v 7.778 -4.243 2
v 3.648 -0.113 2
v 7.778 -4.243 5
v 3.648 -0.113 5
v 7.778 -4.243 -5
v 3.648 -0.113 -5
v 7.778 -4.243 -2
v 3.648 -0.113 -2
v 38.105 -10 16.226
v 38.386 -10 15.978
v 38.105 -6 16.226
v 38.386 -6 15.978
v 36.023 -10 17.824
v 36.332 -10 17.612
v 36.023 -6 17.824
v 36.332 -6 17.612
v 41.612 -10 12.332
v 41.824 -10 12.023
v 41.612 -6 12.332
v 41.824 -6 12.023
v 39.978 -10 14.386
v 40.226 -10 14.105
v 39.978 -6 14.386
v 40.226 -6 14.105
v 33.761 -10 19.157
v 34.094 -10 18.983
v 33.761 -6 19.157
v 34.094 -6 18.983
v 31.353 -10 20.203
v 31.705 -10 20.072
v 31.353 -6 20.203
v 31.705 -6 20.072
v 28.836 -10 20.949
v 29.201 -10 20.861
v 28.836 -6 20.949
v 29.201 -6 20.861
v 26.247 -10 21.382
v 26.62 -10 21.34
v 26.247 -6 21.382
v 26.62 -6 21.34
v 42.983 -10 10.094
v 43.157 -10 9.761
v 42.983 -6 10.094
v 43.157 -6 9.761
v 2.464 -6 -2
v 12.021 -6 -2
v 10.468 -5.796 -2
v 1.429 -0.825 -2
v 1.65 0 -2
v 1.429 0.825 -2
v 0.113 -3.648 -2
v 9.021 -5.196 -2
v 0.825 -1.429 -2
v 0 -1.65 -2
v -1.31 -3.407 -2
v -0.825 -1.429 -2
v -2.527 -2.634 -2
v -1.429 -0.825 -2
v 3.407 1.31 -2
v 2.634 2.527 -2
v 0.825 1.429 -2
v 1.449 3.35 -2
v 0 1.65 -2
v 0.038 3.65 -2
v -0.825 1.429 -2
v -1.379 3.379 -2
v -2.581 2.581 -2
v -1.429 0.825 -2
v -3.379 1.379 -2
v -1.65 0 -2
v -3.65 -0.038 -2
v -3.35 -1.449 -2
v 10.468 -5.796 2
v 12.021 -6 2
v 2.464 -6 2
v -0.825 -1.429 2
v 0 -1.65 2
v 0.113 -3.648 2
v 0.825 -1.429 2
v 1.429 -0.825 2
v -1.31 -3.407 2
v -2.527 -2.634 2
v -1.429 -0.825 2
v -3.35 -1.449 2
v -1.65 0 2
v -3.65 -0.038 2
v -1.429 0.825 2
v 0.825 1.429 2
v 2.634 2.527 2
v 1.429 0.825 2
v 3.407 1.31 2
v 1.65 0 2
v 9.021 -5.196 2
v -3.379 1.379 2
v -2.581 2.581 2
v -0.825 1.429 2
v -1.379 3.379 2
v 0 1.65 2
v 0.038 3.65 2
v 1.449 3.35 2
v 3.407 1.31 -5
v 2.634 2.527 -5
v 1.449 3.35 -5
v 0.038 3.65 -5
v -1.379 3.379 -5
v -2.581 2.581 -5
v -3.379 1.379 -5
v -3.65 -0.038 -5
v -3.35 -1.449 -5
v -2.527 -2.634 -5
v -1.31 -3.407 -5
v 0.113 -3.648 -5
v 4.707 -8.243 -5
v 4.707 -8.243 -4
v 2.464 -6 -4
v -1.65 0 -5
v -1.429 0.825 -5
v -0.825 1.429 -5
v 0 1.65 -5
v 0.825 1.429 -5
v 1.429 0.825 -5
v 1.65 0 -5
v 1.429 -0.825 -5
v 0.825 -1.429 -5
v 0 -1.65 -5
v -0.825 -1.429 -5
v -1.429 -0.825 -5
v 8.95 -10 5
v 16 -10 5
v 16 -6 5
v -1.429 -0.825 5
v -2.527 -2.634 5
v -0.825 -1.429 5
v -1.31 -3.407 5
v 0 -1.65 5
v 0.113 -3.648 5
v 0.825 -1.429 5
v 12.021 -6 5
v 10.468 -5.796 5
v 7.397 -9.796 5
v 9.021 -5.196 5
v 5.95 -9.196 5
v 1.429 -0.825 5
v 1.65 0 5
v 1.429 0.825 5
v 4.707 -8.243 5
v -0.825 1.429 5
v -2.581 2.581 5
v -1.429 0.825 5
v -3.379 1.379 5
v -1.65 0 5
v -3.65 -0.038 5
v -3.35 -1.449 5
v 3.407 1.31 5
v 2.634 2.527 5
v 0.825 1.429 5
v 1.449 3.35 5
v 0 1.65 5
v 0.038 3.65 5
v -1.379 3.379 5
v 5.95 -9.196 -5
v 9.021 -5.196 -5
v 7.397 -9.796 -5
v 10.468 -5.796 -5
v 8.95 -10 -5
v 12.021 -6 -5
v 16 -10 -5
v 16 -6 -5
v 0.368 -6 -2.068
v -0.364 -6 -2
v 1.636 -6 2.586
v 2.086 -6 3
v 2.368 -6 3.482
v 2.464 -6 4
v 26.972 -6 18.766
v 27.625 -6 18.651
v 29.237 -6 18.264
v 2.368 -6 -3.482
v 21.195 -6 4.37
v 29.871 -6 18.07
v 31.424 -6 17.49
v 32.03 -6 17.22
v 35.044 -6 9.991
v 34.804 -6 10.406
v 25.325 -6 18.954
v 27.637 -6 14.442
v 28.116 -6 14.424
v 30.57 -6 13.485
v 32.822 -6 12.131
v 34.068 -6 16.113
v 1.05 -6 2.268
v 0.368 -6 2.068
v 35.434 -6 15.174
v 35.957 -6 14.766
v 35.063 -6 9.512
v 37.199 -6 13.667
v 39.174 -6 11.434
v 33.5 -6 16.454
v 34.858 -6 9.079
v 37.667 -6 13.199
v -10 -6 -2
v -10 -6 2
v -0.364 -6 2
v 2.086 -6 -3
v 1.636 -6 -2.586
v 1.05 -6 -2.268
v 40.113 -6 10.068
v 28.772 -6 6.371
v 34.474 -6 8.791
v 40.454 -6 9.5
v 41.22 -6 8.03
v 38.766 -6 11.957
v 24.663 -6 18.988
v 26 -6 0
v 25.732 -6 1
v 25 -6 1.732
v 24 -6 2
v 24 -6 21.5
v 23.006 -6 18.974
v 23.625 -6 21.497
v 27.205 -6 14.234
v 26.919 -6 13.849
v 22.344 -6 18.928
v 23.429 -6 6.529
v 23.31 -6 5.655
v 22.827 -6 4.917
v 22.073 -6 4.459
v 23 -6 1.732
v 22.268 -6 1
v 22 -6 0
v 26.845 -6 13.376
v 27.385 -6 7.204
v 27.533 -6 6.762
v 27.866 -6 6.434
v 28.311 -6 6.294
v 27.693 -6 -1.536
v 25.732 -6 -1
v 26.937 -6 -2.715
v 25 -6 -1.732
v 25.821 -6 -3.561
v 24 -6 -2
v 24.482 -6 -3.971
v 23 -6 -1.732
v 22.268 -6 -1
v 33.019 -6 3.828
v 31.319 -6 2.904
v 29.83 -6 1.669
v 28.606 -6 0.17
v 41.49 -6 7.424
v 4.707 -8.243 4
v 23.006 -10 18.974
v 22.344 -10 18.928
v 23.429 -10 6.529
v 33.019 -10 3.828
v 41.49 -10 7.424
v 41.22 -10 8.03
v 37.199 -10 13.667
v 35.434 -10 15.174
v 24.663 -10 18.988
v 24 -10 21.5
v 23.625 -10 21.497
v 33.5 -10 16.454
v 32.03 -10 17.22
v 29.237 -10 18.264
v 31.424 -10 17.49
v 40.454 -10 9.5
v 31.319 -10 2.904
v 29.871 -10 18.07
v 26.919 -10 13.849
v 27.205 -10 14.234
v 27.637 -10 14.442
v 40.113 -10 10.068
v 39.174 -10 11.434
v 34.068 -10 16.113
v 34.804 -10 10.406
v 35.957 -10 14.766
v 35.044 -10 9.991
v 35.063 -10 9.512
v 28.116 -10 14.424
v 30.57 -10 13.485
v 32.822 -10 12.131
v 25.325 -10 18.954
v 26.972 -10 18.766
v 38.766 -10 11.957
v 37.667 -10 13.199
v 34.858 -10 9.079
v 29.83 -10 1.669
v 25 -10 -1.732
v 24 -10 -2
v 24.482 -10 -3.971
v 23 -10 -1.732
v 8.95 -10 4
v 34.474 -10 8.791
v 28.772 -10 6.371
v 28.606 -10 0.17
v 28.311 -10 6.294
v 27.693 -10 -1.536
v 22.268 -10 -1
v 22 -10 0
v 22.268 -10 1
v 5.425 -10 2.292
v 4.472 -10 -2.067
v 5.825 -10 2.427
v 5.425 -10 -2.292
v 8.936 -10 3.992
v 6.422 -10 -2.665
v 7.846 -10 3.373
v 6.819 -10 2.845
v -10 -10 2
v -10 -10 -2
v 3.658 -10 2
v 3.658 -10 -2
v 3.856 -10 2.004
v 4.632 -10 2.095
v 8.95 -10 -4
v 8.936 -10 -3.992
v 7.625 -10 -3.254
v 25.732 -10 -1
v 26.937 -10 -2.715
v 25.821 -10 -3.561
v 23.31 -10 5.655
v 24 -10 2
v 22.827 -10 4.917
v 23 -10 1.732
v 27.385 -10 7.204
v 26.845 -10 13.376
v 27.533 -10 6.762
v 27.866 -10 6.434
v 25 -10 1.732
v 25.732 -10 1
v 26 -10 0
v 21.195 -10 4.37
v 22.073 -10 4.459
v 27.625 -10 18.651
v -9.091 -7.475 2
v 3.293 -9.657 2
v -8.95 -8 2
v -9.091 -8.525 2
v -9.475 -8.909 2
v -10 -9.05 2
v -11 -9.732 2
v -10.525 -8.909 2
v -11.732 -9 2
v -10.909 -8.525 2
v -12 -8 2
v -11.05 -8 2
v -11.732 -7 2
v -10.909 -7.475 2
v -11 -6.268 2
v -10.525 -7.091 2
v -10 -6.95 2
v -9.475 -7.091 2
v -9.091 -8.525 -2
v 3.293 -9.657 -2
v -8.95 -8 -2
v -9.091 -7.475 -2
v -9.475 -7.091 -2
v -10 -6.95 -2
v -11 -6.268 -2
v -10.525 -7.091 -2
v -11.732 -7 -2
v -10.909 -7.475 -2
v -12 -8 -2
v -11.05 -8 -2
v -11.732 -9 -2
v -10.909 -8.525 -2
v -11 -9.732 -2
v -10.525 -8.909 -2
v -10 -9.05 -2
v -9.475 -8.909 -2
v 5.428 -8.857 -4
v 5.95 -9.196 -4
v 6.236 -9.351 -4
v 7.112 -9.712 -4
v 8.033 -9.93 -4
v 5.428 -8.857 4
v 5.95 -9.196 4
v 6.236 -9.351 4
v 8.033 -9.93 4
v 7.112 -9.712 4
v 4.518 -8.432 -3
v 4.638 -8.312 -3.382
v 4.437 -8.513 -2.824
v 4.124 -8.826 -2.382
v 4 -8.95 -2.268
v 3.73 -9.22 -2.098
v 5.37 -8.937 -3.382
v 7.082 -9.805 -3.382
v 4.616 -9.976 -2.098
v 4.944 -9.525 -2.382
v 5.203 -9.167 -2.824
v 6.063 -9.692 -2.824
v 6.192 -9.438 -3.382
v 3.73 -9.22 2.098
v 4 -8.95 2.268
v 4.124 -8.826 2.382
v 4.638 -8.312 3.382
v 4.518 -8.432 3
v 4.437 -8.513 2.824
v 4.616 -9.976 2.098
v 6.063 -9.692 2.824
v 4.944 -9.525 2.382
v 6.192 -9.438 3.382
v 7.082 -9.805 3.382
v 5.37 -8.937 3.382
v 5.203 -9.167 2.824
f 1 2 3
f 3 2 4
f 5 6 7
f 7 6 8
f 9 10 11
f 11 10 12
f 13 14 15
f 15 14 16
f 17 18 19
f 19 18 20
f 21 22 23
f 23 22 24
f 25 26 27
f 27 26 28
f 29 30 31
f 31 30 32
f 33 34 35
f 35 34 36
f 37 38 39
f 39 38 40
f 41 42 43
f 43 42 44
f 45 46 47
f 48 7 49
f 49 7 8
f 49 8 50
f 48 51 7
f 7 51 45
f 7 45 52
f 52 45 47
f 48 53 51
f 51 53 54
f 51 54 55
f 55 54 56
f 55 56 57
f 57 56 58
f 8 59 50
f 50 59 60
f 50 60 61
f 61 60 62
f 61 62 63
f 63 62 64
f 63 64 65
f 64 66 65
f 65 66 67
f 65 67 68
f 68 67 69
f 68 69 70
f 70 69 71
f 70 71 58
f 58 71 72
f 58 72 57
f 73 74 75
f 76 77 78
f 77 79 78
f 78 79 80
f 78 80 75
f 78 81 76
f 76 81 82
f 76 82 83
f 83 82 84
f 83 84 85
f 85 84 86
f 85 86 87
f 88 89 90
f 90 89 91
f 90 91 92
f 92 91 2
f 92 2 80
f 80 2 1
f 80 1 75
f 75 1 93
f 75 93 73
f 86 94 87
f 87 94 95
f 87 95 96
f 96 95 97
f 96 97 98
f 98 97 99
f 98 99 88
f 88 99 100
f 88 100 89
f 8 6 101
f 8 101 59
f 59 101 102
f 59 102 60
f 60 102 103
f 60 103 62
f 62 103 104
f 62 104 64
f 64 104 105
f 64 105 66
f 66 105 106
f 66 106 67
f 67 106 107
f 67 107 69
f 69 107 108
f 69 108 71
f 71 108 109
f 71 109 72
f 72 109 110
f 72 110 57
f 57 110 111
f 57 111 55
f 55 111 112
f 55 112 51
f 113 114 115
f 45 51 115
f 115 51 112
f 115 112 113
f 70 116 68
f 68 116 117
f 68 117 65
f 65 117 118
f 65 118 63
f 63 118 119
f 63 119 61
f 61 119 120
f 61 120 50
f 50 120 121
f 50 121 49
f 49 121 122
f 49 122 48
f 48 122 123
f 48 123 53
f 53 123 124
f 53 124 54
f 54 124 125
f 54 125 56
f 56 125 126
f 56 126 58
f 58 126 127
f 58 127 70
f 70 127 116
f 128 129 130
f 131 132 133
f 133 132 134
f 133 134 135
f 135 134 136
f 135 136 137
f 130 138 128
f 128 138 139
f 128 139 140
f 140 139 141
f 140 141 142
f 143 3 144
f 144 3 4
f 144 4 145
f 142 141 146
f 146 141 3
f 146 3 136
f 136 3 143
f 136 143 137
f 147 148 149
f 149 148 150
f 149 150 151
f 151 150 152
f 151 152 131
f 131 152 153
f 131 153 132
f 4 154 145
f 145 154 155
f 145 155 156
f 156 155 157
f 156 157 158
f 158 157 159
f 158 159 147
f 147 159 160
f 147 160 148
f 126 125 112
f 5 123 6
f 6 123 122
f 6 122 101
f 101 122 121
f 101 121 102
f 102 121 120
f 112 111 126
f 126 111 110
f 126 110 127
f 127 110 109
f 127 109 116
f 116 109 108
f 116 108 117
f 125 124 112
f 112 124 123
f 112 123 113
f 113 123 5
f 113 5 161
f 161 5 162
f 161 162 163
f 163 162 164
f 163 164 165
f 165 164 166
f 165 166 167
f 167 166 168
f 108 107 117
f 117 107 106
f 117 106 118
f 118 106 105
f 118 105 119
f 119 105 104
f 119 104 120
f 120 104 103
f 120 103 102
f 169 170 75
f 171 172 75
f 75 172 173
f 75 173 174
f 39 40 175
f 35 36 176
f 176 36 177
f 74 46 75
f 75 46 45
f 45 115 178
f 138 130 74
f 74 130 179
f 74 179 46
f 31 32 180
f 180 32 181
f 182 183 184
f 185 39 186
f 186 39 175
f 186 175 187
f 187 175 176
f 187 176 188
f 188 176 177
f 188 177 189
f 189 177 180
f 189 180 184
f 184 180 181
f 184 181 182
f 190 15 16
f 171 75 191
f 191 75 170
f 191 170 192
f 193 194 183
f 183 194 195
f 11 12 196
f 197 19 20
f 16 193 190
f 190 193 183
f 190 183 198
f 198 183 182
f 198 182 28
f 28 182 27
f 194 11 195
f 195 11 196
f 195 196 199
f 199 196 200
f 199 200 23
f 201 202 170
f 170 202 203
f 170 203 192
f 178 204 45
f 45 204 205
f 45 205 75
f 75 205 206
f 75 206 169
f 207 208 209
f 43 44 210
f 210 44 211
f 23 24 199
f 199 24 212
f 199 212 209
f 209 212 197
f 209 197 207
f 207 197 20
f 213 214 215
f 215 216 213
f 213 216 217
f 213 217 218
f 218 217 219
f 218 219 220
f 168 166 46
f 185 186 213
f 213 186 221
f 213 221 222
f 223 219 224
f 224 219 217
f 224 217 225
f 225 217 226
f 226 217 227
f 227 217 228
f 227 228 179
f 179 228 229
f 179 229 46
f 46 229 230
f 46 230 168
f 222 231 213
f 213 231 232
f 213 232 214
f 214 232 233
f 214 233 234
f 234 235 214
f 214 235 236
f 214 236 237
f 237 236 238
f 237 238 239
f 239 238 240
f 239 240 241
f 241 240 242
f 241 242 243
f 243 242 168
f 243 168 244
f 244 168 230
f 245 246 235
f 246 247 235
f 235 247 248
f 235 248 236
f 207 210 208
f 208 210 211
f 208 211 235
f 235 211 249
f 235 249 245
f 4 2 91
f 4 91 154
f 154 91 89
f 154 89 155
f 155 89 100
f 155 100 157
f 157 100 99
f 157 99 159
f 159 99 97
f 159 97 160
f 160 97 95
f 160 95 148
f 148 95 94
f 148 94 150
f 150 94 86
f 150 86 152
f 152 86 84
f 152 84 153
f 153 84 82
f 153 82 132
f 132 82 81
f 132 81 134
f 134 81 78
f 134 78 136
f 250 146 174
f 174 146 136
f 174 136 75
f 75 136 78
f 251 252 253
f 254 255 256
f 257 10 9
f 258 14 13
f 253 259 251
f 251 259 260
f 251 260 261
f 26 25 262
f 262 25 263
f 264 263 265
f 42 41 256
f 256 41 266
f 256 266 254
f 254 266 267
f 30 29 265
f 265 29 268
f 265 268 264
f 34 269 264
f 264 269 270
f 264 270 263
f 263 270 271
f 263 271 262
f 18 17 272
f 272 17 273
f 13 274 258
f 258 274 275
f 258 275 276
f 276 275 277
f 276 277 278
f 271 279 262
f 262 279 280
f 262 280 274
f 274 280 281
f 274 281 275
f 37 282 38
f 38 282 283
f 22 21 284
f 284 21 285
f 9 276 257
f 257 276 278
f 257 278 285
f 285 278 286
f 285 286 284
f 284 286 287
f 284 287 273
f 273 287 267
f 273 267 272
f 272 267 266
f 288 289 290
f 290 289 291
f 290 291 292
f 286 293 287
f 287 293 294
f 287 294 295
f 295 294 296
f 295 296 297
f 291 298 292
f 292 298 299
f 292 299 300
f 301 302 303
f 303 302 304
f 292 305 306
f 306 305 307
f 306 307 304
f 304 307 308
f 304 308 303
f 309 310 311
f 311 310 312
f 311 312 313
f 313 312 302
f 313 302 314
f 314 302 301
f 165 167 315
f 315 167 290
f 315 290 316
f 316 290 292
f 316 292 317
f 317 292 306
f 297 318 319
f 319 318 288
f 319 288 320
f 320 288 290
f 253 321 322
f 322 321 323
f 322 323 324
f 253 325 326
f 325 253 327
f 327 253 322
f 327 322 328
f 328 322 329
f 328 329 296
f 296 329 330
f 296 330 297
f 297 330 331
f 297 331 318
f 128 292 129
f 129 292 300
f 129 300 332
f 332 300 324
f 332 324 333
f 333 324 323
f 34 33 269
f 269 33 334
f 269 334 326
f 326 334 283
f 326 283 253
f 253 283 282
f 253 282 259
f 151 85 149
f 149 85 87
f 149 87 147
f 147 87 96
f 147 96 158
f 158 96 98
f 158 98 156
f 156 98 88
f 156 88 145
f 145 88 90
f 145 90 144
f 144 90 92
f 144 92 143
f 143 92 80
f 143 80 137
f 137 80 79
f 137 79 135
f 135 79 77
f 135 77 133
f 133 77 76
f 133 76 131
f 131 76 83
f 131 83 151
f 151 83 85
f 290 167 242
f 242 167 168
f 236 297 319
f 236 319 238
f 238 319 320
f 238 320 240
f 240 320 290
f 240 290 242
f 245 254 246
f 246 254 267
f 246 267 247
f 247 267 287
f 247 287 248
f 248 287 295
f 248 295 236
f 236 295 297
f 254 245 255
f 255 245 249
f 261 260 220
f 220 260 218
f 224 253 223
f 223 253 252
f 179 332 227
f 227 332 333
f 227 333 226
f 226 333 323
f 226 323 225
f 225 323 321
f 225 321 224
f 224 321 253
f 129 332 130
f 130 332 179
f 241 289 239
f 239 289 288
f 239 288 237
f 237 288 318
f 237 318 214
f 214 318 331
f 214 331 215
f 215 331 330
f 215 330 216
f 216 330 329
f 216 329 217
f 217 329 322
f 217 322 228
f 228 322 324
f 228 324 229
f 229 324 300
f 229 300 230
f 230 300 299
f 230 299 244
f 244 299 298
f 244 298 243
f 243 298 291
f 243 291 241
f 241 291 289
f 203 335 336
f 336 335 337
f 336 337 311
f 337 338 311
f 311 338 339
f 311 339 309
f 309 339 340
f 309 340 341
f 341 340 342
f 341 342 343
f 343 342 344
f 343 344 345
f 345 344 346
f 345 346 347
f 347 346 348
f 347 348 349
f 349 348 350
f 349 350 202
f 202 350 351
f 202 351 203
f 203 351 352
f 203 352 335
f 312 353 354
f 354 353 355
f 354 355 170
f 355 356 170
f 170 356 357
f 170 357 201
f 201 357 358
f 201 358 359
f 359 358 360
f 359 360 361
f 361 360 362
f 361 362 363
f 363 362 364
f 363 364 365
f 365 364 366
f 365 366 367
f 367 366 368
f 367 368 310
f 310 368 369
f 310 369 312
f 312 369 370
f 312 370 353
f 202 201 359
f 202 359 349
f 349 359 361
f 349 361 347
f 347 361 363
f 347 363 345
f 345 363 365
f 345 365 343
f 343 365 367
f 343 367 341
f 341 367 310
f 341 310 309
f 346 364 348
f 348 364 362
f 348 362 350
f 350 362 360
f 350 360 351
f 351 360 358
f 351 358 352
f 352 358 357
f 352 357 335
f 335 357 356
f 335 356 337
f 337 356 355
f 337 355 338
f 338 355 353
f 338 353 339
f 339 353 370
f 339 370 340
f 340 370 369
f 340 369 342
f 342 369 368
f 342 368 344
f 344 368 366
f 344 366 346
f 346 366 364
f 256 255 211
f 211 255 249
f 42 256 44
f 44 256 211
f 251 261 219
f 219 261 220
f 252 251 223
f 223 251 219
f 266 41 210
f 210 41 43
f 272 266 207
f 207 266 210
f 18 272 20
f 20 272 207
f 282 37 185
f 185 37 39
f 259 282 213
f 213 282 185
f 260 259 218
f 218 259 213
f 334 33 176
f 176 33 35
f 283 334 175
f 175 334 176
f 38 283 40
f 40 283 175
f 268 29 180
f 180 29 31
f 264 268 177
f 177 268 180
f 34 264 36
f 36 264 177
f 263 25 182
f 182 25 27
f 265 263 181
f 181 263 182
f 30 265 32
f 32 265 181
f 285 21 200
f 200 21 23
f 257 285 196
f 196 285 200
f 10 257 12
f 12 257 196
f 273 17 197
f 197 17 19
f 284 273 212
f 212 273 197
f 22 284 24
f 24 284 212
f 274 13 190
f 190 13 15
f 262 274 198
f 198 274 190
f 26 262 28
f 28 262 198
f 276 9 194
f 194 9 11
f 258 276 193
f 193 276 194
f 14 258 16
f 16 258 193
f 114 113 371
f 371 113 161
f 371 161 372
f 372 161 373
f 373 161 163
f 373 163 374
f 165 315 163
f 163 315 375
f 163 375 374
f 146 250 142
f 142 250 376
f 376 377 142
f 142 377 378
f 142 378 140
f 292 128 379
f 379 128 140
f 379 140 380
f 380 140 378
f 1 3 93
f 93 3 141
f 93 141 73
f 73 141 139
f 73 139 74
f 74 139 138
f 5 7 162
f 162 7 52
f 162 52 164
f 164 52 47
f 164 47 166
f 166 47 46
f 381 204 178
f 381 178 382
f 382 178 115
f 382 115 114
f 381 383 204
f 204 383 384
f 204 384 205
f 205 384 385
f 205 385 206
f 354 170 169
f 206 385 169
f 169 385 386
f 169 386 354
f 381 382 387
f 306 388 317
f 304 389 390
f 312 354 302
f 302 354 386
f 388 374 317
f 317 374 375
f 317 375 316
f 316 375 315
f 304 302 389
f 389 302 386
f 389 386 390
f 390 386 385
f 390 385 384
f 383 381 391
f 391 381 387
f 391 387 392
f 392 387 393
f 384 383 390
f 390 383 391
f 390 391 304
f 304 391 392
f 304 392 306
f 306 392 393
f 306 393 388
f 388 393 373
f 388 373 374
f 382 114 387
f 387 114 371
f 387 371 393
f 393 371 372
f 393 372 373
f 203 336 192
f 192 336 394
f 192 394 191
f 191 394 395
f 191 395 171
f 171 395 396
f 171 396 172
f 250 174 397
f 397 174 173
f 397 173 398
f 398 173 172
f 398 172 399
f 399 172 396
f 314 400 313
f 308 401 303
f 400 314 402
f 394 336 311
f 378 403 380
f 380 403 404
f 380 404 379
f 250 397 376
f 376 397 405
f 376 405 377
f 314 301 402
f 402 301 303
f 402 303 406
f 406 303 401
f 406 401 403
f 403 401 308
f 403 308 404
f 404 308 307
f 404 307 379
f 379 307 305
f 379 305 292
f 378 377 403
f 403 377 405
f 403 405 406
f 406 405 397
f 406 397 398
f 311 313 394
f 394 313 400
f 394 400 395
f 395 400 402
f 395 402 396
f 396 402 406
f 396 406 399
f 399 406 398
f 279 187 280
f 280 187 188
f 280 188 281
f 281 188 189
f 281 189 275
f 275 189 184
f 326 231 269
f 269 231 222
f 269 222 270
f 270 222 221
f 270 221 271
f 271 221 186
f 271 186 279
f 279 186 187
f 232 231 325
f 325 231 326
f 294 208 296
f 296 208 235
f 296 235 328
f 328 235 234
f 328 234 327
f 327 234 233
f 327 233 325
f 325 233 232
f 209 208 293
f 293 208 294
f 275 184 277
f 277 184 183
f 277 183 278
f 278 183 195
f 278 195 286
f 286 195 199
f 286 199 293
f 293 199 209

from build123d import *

# Parameters (mm, degrees)
SKETCH1_R           = 1.6500000000000001
BOSS_EXTRUDE1_DEPTH = 5
CUT_EXTRUDE1_DEPTH  = 22.617643257302586
SKETCH4_R           = 2.000000000000003
BOSS_EXTRUDE2_DEPTH = 4
SKETCH5_R           = 1.0500000000000005
BOSS_EXTRUDE3_DEPTH = 2
CUT_EXTRUDE2_REACH  = 52.658
CIRPATTERN1_COUNT   = 11
CIRPATTERN1_ANGLE   = 70.00000000000016
CUT_EXTRUDE3_DEPTH  = 4
FILLET1_R           = 6
FILLET2_R           = 2
CUT_EXTRUDE4_REACH  = 51.172


with BuildPart() as part:
    # Sketch1 → Boss-Extrude1 (new, symmetric)
    with BuildSketch(Plane.XY):
        with BuildLine():
            Line((6.464466094067297, -10), (16, -10))
            Line((16, -10), (16, -5.999999999999998))
            Line((16, -5.999999999999998), (9.535533905932775, -5.999999999999998))
            Line((9.535533905932775, -5.999999999999998), (3.6482589098755183, -0.11272500394276944))
            ThreePointArc((3.6482589098755183, -0.11272500394276944), (-2.580939751330903, 2.5809397513308943), (0.11272500394278592, -3.6482589098755174))
            Line((0.11272500394278592, -3.6482589098755174), (6.464466094067297, -10))
        make_face()
        Circle(SKETCH1_R, mode=Mode.SUBTRACT)
    extrude(amount=BOSS_EXTRUDE1_DEPTH, both=True)

    # Sketch3 → Cut-Extrude1 (cut, through all)
    with BuildSketch(Plane.XZ.offset(10)):
        Polygon((6.464466094067297, 2.000000000000001), (-3.6500000000000012, 1.9999999999999996), (-3.650000000000001, -2.0000000000000004), (6.464466094067298, -1.9999999999999991), align=None)
    extrude(amount=-CUT_EXTRUDE1_DEPTH, mode=Mode.SUBTRACT)

    # Sketch4 → Boss-Extrude2 (add)
    with BuildSketch(Plane.XZ.offset(10)):
        with BuildLine():
            Line((16, 5), (16, -5))
            Line((16, -5), (21.19546555409763, -4.369618467658506))
            Line((21.19546555409763, -4.369618467658506), (24.481798594453377, -3.970877751125406))
            ThreePointArc((24.481798594453377, -3.970877751125406), (26.41654324887739, -3.187525486377344), (27.693251449070946, -1.5361945625263))
            ThreePointArc((27.693251449070946, -1.5361945625263), (29.829731429750588, 1.668713133124987), (33.01906878685553, 3.8283675656823353))
            Line((33.01906878685553, 3.8283675656823353), (43.79085434922743, 8.400719262519475))
            ThreePointArc((43.79085434922743, 8.400719262519475), (35.07331861056618, 18.429096965095408), (22.126151530925494, 21.418186008972544))
            Line((22.126151530925494, 21.418186008972544), (23.428754247507808, 6.529368828716514))
            ThreePointArc((23.428754247507808, 6.529368828716514), (22.82671005925236, 4.917371632507108), (21.19546555409763, 4.369618467658506))
            Line((21.19546555409763, 4.369618467658506), (16, 5))
        make_face()
        with Locations(Location((24, 0, 0), (0, 0, 270))):
            Circle(SKETCH4_R, mode=Mode.SUBTRACT)
    extrude(amount=-BOSS_EXTRUDE2_DEPTH)

    # Sketch5 → Boss-Extrude3 (add, symmetric)
    with BuildSketch(Plane.XY):
        with BuildLine():
            Line((6.464466094067297, -10), (-10, -10.000000000000002))
            ThreePointArc((-10, -10.000000000000002), (-11.999999999999998, -8), (-9.999999999999998, -6.000000000000002))
            Line((-9.999999999999998, -6.000000000000002), (9.535533905932775, -5.999999999999998))
            Line((9.535533905932775, -5.999999999999998), (16, -5.999999999999998))
            Line((16, -5.999999999999998), (16, -10))
            Line((16, -10), (6.464466094067297, -10))
        make_face()
        with Locations((-9.999999999999998, -8.000000000000002)):
            Circle(SKETCH5_R, mode=Mode.SUBTRACT)
    extrude(amount=BOSS_EXTRUDE3_DEPTH, both=True)

    # Sketch6 → Cut-Extrude2 (cut, up to next)
    with BuildSketch(Plane.XZ.offset(10), mode=Mode.PRIVATE) as cut_extrude2_sk1:
        with BuildLine():
            Line((41.21984795369632, 8.029746973073365), (43.15664027004987, 9.760795744400328))
            ThreePointArc((43.15664027004987, 9.760795744400328), (43.324071995432064, 9.424979655965245), (43.48561742128794, 9.086292627425122))
            ThreePointArc((43.48561742128794, 9.086292627425122), (43.64122733931588, 8.744837826129787), (43.79085434922743, 8.40071926251947))
            ThreePointArc((43.79085434922743, 8.40071926251947), (43.93445287318589, 8.054041758442194), (44.071979169689804, 7.704910915224042))
            Line((44.071979169689804, 7.704910915224042), (41.48959221559633, 7.42389144129628))
            ThreePointArc((41.48959221559633, 7.42389144129628), (41.357363695209386, 7.72799621844028), (41.21984795369632, 8.029746973073365))
        make_face()
    cut_extrude2_tool1 = extrude(cut_extrude2_sk1.sketch, amount=-CUT_EXTRUDE2_REACH, mode=Mode.PRIVATE) & part.part
    cut_extrude2 = cut_extrude2_tool1.solids().sort_by_distance((42.701484, -10, 8.326437))[0]
    add(cut_extrude2, mode=Mode.SUBTRACT)

    # CirPattern1: Cut-Extrude2; each copy of Cut-Extrude2 runs up to whatever stops it at its own place
    cirpattern1_before = part.part  # the part as the pattern finds it: every copy runs up to it
    cirpattern1_cut_extrude2_long = extrude(cut_extrude2_sk1.sketch, amount=-CUT_EXTRUDE2_REACH, mode=Mode.PRIVATE)
    cirpattern1_cut_extrude2_tool1 = cirpattern1_cut_extrude2_long.rotate(Axis((24.000000000000014, 0, -2.52e-15), (0, -1, 0)), 1 * CIRPATTERN1_ANGLE / (CIRPATTERN1_COUNT - 1)) & cirpattern1_before
    add(cirpattern1_cut_extrude2_tool1.solids().sort_by_distance((41.547349, -10, 10.543511))[0], mode=Mode.SUBTRACT)
    cirpattern1_cut_extrude2_tool2 = cirpattern1_cut_extrude2_long.rotate(Axis((24.000000000000014, 0, -2.52e-15), (0, -1, 0)), 2 * CIRPATTERN1_ANGLE / (CIRPATTERN1_COUNT - 1)) & cirpattern1_before
    add(cirpattern1_cut_extrude2_tool2.solids().sort_by_distance((40.131623, -10, 12.603405))[0], mode=Mode.SUBTRACT)
    cirpattern1_cut_extrude2_tool3 = cirpattern1_cut_extrude2_long.rotate(Axis((24.000000000000014, 0, -2.52e-15), (0, -1, 0)), 3 * CIRPATTERN1_ANGLE / (CIRPATTERN1_COUNT - 1)) & cirpattern1_before
    add(cirpattern1_cut_extrude2_tool3.solids().sort_by_distance((38.475411, -10, 14.475411))[0], mode=Mode.SUBTRACT)
    cirpattern1_cut_extrude2_tool4 = cirpattern1_cut_extrude2_long.rotate(Axis((24.000000000000014, 0, -2.52e-15), (0, -1, 0)), 4 * CIRPATTERN1_ANGLE / (CIRPATTERN1_COUNT - 1)) & cirpattern1_before
    add(cirpattern1_cut_extrude2_tool4.solids().sort_by_distance((36.603405, -10, 16.131622))[0], mode=Mode.SUBTRACT)
    cirpattern1_cut_extrude2_tool5 = cirpattern1_cut_extrude2_long.rotate(Axis((24.000000000000014, 0, -2.52e-15), (0, -1, 0)), 5 * CIRPATTERN1_ANGLE / (CIRPATTERN1_COUNT - 1)) & cirpattern1_before
    add(cirpattern1_cut_extrude2_tool5.solids().sort_by_distance((34.543511, -10, 17.547348))[0], mode=Mode.SUBTRACT)
    cirpattern1_cut_extrude2_tool6 = cirpattern1_cut_extrude2_long.rotate(Axis((24.000000000000014, 0, -2.52e-15), (0, -1, 0)), 6 * CIRPATTERN1_ANGLE / (CIRPATTERN1_COUNT - 1)) & cirpattern1_before
    add(cirpattern1_cut_extrude2_tool6.solids().sort_by_distance((32.326437, -10, 18.701484))[0], mode=Mode.SUBTRACT)
    cirpattern1_cut_extrude2_tool7 = cirpattern1_cut_extrude2_long.rotate(Axis((24.000000000000014, 0, -2.52e-15), (0, -1, 0)), 7 * CIRPATTERN1_ANGLE / (CIRPATTERN1_COUNT - 1)) & cirpattern1_before
    add(cirpattern1_cut_extrude2_tool7.solids().sort_by_distance((29.985236, -10, 19.576823))[0], mode=Mode.SUBTRACT)
    cirpattern1_cut_extrude2_tool8 = cirpattern1_cut_extrude2_long.rotate(Axis((24.000000000000014, 0, -2.52e-15), (0, -1, 0)), 8 * CIRPATTERN1_ANGLE / (CIRPATTERN1_COUNT - 1)) & cirpattern1_before
    add(cirpattern1_cut_extrude2_tool8.solids().sort_by_distance((27.554808, -10, 20.160317))[0], mode=Mode.SUBTRACT)
    cirpattern1_cut_extrude2_tool9 = cirpattern1_cut_extrude2_long.rotate(Axis((24.000000000000014, 0, -2.52e-15), (0, -1, 0)), 9 * CIRPATTERN1_ANGLE / (CIRPATTERN1_COUNT - 1)) & cirpattern1_before
    add(cirpattern1_cut_extrude2_tool9.solids().sort_by_distance((25.071386, -10, 20.443268))[0], mode=Mode.SUBTRACT)
    cirpattern1_cut_extrude2_tool10 = cirpattern1_cut_extrude2_long.rotate(Axis((24.000000000000014, 0, -2.52e-15), (0, -1, 0)), 10 * CIRPATTERN1_ANGLE / (CIRPATTERN1_COUNT - 1)) & cirpattern1_before
    add(cirpattern1_cut_extrude2_tool10.solids().sort_by_distance((22.571993, -10, 20.421456))[0], mode=Mode.SUBTRACT)

    # Sketch7 → Cut-Extrude3 (cut)
    with BuildSketch(Plane(origin=(0, -5.999999999999998, 0), x_dir=(1, 0, 0), z_dir=(0, 1, 0))):
        Polygon((9.535533905932775, -2.0000000000000013), (6.464466094067297, -2.000000000000001), (6.464466094067298, 1.9999999999999991), (9.535533905932775, 1.9999999999999991), align=None)
    extrude(amount=CUT_EXTRUDE3_DEPTH, mode=Mode.SUBTRACT)

    # Fillet1
    fillet1_edges = [part.edges().sort_by_distance(p)[0] for p in [
        (6.464466094067297, -10, 3.5),
        (9.535533905932775, -5.999999999999998, 3.5),
        (6.464466094067297, -10, -3.4999999999999996),
        (9.535533905932775, -5.999999999999998, -3.5),
    ]]
    fillet(fillet1_edges, radius=FILLET1_R)

    # Fillet2
    # the kernel refuses this fillet: 2 mm, written as the material it adds along each edge
    with BuildSketch(Plane(origin=(-1.0710678118654662, -2.4644660940672707, -2), x_dir=(1.2e-16, -1e-17, -1), z_dir=(0.7071067811865491, -0.707106781186546, 0))) as fillet2_piece_1_section:
        with BuildLine():
            CenterArc((FILLET2_R, -FILLET2_R), FILLET2_R, 90, 90)
            Line((-1.6e-16, -FILLET2_R), (0, 0))
            Line((0, 0), (FILLET2_R, 0))
        make_face()
    fillet2_piece_1 = extrude(amount=8.171572875253831, mode=Mode.PRIVATE)
    fillet2_piece_1 = split(fillet2_piece_1, bisect_by=Plane(origin=(3.0707262538263027, -5.999999999999999, -2.423870706471317), z_dir=(1.8e-16, -1, 0)), keep=Keep.TOP, mode=Mode.PRIVATE)
    add(fillet2_piece_1)
    with BuildSketch(Plane(origin=(8.94974746830586, -3.999999999999999, -2), x_dir=(-0.7071067811865458, -0.7071067811865492, 0), z_dir=(-0.7071067811865492, 0.7071067811865458, 0))) as fillet2_piece_2_section:
        with BuildLine():
            CenterArc((6 + FILLET2_R, -FILLET2_R), FILLET2_R, 90, 90)
            Line((6 + FILLET2_R, 0), (6, 0))
            Line((6, 0), (6.000000000000001, -FILLET2_R))
        make_face()
    fillet2_piece_2 = revolve(axis=Axis((8.94974746830586, -3.999999999999999, -2), (0, 0, 1)), revolution_arc=92.75127695444853, mode=Mode.PRIVATE)
    fillet2_piece_2 = split(fillet2_piece_2, bisect_by=Plane(origin=(6.6265116676217675, -10, -2.6906159544544805), z_dir=(0, 1, 0)), keep=Keep.TOP, mode=Mode.PRIVATE)
    add(fillet2_piece_2)
    with BuildSketch(Plane(origin=(8.94974746830586, -3.999999999999999, 2), x_dir=(-0.7071067811865458, -0.7071067811865492, 0), z_dir=(-0.7071067811865492, 0.7071067811865458, 0))) as fillet2_piece_3_section:
        with BuildLine():
            CenterArc((6 + FILLET2_R, FILLET2_R), FILLET2_R, 180, 90)
            Line((6 + FILLET2_R, 0), (6, 0))
            Line((6, 0), (6.000000000000001, FILLET2_R))
        make_face()
    fillet2_piece_3 = revolve(axis=Axis((8.94974746830586, -3.999999999999999, 2), (0, 0, 1)), revolution_arc=92.75127695444853, mode=Mode.PRIVATE)
    fillet2_piece_3 = split(fillet2_piece_3, bisect_by=Plane(origin=(6.626511667621772, -10, 2.6906159544544797), z_dir=(0, 1, 0)), keep=Keep.TOP, mode=Mode.PRIVATE)
    add(fillet2_piece_3)
    with BuildSketch(Plane(origin=(4.707106781186583, -8.242640687119295, 2.0000000000000004), x_dir=(1.6e-16, 2.9e-16, 1), z_dir=(-0.7071067811865491, 0.707106781186546, 0))) as fillet2_piece_4_section:
        with BuildLine():
            CenterArc((FILLET2_R, -FILLET2_R), FILLET2_R, 89.99999999999999, 90.00000000000001)
            Line((-1.07e-15, -FILLET2_R), (0, 0))
            Line((0, 0), (FILLET2_R, 0))
        make_face()
    fillet2_piece_4 = extrude(amount=8.171572875253833, mode=Mode.PRIVATE)
    fillet2_piece_4 = split(fillet2_piece_4, bisect_by=Plane(origin=(3.0707262538259545, -5.999999999999999, 2.4238707064714085), z_dir=(1.8e-16, -1, 0)), keep=Keep.TOP, mode=Mode.PRIVATE)
    add(fillet2_piece_4)

    # Sketch8 → Cut-Extrude4 (cut, up to next)
    with BuildSketch(Plane(origin=(0, -5.999999999999998, 0), x_dir=(1, 0, 0), z_dir=(0, 1, 0)), mode=Mode.PRIVATE) as cut_extrude4_sk1:
        with BuildLine():
            ThreePointArc((28.115640284464295, -14.42433724816827), (31.725571123650823, -12.857509510531676), (34.803757775643525, -10.405710832289252))
            ThreePointArc((34.803757775643525, -10.405710832289252), (35.06330097352167, -9.511986093117567), (34.47423838575658, -8.791491923350865))
            Line((34.47423838575658, -8.791491923350865), (28.771906676032494, -6.370995718899502))
            ThreePointArc((28.771906676032494, -6.370995718899502), (27.866137472633152, -6.434333271649826), (27.38498084945146, -7.2043448296042945))
            Line((27.38498084945146, -7.2043448296042945), (26.845069567408263, -13.375559022209401))
            ThreePointArc((26.845069567408263, -13.375559022209401), (27.20468002661588, -14.23392193997834), (28.115640284464295, -14.42433724816827))
        make_face()
    cut_extrude4_tool1 = extrude(cut_extrude4_sk1.sketch, amount=-CUT_EXTRUDE4_REACH, mode=Mode.PRIVATE) & part.part
    add(cut_extrude4_tool1.solids().sort_by_distance((30.212176, -6, 10.338796))[0], mode=Mode.SUBTRACT)


solid = part.part
